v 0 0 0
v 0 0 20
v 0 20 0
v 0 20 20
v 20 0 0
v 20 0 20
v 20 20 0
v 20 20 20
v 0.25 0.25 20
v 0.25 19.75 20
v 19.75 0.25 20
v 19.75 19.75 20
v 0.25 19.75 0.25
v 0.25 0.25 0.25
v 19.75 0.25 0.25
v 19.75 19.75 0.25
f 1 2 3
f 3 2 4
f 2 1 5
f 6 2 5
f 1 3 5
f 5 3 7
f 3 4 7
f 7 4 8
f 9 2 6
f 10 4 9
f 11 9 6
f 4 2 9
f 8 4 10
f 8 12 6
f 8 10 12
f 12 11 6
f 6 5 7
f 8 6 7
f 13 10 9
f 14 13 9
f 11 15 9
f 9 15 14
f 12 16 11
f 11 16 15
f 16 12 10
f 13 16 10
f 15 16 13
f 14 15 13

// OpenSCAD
difference(){
	cube([20,20,20]);
	translate([0.25,0.25,0.25]) cube([19.5,19.5,20]);
}
